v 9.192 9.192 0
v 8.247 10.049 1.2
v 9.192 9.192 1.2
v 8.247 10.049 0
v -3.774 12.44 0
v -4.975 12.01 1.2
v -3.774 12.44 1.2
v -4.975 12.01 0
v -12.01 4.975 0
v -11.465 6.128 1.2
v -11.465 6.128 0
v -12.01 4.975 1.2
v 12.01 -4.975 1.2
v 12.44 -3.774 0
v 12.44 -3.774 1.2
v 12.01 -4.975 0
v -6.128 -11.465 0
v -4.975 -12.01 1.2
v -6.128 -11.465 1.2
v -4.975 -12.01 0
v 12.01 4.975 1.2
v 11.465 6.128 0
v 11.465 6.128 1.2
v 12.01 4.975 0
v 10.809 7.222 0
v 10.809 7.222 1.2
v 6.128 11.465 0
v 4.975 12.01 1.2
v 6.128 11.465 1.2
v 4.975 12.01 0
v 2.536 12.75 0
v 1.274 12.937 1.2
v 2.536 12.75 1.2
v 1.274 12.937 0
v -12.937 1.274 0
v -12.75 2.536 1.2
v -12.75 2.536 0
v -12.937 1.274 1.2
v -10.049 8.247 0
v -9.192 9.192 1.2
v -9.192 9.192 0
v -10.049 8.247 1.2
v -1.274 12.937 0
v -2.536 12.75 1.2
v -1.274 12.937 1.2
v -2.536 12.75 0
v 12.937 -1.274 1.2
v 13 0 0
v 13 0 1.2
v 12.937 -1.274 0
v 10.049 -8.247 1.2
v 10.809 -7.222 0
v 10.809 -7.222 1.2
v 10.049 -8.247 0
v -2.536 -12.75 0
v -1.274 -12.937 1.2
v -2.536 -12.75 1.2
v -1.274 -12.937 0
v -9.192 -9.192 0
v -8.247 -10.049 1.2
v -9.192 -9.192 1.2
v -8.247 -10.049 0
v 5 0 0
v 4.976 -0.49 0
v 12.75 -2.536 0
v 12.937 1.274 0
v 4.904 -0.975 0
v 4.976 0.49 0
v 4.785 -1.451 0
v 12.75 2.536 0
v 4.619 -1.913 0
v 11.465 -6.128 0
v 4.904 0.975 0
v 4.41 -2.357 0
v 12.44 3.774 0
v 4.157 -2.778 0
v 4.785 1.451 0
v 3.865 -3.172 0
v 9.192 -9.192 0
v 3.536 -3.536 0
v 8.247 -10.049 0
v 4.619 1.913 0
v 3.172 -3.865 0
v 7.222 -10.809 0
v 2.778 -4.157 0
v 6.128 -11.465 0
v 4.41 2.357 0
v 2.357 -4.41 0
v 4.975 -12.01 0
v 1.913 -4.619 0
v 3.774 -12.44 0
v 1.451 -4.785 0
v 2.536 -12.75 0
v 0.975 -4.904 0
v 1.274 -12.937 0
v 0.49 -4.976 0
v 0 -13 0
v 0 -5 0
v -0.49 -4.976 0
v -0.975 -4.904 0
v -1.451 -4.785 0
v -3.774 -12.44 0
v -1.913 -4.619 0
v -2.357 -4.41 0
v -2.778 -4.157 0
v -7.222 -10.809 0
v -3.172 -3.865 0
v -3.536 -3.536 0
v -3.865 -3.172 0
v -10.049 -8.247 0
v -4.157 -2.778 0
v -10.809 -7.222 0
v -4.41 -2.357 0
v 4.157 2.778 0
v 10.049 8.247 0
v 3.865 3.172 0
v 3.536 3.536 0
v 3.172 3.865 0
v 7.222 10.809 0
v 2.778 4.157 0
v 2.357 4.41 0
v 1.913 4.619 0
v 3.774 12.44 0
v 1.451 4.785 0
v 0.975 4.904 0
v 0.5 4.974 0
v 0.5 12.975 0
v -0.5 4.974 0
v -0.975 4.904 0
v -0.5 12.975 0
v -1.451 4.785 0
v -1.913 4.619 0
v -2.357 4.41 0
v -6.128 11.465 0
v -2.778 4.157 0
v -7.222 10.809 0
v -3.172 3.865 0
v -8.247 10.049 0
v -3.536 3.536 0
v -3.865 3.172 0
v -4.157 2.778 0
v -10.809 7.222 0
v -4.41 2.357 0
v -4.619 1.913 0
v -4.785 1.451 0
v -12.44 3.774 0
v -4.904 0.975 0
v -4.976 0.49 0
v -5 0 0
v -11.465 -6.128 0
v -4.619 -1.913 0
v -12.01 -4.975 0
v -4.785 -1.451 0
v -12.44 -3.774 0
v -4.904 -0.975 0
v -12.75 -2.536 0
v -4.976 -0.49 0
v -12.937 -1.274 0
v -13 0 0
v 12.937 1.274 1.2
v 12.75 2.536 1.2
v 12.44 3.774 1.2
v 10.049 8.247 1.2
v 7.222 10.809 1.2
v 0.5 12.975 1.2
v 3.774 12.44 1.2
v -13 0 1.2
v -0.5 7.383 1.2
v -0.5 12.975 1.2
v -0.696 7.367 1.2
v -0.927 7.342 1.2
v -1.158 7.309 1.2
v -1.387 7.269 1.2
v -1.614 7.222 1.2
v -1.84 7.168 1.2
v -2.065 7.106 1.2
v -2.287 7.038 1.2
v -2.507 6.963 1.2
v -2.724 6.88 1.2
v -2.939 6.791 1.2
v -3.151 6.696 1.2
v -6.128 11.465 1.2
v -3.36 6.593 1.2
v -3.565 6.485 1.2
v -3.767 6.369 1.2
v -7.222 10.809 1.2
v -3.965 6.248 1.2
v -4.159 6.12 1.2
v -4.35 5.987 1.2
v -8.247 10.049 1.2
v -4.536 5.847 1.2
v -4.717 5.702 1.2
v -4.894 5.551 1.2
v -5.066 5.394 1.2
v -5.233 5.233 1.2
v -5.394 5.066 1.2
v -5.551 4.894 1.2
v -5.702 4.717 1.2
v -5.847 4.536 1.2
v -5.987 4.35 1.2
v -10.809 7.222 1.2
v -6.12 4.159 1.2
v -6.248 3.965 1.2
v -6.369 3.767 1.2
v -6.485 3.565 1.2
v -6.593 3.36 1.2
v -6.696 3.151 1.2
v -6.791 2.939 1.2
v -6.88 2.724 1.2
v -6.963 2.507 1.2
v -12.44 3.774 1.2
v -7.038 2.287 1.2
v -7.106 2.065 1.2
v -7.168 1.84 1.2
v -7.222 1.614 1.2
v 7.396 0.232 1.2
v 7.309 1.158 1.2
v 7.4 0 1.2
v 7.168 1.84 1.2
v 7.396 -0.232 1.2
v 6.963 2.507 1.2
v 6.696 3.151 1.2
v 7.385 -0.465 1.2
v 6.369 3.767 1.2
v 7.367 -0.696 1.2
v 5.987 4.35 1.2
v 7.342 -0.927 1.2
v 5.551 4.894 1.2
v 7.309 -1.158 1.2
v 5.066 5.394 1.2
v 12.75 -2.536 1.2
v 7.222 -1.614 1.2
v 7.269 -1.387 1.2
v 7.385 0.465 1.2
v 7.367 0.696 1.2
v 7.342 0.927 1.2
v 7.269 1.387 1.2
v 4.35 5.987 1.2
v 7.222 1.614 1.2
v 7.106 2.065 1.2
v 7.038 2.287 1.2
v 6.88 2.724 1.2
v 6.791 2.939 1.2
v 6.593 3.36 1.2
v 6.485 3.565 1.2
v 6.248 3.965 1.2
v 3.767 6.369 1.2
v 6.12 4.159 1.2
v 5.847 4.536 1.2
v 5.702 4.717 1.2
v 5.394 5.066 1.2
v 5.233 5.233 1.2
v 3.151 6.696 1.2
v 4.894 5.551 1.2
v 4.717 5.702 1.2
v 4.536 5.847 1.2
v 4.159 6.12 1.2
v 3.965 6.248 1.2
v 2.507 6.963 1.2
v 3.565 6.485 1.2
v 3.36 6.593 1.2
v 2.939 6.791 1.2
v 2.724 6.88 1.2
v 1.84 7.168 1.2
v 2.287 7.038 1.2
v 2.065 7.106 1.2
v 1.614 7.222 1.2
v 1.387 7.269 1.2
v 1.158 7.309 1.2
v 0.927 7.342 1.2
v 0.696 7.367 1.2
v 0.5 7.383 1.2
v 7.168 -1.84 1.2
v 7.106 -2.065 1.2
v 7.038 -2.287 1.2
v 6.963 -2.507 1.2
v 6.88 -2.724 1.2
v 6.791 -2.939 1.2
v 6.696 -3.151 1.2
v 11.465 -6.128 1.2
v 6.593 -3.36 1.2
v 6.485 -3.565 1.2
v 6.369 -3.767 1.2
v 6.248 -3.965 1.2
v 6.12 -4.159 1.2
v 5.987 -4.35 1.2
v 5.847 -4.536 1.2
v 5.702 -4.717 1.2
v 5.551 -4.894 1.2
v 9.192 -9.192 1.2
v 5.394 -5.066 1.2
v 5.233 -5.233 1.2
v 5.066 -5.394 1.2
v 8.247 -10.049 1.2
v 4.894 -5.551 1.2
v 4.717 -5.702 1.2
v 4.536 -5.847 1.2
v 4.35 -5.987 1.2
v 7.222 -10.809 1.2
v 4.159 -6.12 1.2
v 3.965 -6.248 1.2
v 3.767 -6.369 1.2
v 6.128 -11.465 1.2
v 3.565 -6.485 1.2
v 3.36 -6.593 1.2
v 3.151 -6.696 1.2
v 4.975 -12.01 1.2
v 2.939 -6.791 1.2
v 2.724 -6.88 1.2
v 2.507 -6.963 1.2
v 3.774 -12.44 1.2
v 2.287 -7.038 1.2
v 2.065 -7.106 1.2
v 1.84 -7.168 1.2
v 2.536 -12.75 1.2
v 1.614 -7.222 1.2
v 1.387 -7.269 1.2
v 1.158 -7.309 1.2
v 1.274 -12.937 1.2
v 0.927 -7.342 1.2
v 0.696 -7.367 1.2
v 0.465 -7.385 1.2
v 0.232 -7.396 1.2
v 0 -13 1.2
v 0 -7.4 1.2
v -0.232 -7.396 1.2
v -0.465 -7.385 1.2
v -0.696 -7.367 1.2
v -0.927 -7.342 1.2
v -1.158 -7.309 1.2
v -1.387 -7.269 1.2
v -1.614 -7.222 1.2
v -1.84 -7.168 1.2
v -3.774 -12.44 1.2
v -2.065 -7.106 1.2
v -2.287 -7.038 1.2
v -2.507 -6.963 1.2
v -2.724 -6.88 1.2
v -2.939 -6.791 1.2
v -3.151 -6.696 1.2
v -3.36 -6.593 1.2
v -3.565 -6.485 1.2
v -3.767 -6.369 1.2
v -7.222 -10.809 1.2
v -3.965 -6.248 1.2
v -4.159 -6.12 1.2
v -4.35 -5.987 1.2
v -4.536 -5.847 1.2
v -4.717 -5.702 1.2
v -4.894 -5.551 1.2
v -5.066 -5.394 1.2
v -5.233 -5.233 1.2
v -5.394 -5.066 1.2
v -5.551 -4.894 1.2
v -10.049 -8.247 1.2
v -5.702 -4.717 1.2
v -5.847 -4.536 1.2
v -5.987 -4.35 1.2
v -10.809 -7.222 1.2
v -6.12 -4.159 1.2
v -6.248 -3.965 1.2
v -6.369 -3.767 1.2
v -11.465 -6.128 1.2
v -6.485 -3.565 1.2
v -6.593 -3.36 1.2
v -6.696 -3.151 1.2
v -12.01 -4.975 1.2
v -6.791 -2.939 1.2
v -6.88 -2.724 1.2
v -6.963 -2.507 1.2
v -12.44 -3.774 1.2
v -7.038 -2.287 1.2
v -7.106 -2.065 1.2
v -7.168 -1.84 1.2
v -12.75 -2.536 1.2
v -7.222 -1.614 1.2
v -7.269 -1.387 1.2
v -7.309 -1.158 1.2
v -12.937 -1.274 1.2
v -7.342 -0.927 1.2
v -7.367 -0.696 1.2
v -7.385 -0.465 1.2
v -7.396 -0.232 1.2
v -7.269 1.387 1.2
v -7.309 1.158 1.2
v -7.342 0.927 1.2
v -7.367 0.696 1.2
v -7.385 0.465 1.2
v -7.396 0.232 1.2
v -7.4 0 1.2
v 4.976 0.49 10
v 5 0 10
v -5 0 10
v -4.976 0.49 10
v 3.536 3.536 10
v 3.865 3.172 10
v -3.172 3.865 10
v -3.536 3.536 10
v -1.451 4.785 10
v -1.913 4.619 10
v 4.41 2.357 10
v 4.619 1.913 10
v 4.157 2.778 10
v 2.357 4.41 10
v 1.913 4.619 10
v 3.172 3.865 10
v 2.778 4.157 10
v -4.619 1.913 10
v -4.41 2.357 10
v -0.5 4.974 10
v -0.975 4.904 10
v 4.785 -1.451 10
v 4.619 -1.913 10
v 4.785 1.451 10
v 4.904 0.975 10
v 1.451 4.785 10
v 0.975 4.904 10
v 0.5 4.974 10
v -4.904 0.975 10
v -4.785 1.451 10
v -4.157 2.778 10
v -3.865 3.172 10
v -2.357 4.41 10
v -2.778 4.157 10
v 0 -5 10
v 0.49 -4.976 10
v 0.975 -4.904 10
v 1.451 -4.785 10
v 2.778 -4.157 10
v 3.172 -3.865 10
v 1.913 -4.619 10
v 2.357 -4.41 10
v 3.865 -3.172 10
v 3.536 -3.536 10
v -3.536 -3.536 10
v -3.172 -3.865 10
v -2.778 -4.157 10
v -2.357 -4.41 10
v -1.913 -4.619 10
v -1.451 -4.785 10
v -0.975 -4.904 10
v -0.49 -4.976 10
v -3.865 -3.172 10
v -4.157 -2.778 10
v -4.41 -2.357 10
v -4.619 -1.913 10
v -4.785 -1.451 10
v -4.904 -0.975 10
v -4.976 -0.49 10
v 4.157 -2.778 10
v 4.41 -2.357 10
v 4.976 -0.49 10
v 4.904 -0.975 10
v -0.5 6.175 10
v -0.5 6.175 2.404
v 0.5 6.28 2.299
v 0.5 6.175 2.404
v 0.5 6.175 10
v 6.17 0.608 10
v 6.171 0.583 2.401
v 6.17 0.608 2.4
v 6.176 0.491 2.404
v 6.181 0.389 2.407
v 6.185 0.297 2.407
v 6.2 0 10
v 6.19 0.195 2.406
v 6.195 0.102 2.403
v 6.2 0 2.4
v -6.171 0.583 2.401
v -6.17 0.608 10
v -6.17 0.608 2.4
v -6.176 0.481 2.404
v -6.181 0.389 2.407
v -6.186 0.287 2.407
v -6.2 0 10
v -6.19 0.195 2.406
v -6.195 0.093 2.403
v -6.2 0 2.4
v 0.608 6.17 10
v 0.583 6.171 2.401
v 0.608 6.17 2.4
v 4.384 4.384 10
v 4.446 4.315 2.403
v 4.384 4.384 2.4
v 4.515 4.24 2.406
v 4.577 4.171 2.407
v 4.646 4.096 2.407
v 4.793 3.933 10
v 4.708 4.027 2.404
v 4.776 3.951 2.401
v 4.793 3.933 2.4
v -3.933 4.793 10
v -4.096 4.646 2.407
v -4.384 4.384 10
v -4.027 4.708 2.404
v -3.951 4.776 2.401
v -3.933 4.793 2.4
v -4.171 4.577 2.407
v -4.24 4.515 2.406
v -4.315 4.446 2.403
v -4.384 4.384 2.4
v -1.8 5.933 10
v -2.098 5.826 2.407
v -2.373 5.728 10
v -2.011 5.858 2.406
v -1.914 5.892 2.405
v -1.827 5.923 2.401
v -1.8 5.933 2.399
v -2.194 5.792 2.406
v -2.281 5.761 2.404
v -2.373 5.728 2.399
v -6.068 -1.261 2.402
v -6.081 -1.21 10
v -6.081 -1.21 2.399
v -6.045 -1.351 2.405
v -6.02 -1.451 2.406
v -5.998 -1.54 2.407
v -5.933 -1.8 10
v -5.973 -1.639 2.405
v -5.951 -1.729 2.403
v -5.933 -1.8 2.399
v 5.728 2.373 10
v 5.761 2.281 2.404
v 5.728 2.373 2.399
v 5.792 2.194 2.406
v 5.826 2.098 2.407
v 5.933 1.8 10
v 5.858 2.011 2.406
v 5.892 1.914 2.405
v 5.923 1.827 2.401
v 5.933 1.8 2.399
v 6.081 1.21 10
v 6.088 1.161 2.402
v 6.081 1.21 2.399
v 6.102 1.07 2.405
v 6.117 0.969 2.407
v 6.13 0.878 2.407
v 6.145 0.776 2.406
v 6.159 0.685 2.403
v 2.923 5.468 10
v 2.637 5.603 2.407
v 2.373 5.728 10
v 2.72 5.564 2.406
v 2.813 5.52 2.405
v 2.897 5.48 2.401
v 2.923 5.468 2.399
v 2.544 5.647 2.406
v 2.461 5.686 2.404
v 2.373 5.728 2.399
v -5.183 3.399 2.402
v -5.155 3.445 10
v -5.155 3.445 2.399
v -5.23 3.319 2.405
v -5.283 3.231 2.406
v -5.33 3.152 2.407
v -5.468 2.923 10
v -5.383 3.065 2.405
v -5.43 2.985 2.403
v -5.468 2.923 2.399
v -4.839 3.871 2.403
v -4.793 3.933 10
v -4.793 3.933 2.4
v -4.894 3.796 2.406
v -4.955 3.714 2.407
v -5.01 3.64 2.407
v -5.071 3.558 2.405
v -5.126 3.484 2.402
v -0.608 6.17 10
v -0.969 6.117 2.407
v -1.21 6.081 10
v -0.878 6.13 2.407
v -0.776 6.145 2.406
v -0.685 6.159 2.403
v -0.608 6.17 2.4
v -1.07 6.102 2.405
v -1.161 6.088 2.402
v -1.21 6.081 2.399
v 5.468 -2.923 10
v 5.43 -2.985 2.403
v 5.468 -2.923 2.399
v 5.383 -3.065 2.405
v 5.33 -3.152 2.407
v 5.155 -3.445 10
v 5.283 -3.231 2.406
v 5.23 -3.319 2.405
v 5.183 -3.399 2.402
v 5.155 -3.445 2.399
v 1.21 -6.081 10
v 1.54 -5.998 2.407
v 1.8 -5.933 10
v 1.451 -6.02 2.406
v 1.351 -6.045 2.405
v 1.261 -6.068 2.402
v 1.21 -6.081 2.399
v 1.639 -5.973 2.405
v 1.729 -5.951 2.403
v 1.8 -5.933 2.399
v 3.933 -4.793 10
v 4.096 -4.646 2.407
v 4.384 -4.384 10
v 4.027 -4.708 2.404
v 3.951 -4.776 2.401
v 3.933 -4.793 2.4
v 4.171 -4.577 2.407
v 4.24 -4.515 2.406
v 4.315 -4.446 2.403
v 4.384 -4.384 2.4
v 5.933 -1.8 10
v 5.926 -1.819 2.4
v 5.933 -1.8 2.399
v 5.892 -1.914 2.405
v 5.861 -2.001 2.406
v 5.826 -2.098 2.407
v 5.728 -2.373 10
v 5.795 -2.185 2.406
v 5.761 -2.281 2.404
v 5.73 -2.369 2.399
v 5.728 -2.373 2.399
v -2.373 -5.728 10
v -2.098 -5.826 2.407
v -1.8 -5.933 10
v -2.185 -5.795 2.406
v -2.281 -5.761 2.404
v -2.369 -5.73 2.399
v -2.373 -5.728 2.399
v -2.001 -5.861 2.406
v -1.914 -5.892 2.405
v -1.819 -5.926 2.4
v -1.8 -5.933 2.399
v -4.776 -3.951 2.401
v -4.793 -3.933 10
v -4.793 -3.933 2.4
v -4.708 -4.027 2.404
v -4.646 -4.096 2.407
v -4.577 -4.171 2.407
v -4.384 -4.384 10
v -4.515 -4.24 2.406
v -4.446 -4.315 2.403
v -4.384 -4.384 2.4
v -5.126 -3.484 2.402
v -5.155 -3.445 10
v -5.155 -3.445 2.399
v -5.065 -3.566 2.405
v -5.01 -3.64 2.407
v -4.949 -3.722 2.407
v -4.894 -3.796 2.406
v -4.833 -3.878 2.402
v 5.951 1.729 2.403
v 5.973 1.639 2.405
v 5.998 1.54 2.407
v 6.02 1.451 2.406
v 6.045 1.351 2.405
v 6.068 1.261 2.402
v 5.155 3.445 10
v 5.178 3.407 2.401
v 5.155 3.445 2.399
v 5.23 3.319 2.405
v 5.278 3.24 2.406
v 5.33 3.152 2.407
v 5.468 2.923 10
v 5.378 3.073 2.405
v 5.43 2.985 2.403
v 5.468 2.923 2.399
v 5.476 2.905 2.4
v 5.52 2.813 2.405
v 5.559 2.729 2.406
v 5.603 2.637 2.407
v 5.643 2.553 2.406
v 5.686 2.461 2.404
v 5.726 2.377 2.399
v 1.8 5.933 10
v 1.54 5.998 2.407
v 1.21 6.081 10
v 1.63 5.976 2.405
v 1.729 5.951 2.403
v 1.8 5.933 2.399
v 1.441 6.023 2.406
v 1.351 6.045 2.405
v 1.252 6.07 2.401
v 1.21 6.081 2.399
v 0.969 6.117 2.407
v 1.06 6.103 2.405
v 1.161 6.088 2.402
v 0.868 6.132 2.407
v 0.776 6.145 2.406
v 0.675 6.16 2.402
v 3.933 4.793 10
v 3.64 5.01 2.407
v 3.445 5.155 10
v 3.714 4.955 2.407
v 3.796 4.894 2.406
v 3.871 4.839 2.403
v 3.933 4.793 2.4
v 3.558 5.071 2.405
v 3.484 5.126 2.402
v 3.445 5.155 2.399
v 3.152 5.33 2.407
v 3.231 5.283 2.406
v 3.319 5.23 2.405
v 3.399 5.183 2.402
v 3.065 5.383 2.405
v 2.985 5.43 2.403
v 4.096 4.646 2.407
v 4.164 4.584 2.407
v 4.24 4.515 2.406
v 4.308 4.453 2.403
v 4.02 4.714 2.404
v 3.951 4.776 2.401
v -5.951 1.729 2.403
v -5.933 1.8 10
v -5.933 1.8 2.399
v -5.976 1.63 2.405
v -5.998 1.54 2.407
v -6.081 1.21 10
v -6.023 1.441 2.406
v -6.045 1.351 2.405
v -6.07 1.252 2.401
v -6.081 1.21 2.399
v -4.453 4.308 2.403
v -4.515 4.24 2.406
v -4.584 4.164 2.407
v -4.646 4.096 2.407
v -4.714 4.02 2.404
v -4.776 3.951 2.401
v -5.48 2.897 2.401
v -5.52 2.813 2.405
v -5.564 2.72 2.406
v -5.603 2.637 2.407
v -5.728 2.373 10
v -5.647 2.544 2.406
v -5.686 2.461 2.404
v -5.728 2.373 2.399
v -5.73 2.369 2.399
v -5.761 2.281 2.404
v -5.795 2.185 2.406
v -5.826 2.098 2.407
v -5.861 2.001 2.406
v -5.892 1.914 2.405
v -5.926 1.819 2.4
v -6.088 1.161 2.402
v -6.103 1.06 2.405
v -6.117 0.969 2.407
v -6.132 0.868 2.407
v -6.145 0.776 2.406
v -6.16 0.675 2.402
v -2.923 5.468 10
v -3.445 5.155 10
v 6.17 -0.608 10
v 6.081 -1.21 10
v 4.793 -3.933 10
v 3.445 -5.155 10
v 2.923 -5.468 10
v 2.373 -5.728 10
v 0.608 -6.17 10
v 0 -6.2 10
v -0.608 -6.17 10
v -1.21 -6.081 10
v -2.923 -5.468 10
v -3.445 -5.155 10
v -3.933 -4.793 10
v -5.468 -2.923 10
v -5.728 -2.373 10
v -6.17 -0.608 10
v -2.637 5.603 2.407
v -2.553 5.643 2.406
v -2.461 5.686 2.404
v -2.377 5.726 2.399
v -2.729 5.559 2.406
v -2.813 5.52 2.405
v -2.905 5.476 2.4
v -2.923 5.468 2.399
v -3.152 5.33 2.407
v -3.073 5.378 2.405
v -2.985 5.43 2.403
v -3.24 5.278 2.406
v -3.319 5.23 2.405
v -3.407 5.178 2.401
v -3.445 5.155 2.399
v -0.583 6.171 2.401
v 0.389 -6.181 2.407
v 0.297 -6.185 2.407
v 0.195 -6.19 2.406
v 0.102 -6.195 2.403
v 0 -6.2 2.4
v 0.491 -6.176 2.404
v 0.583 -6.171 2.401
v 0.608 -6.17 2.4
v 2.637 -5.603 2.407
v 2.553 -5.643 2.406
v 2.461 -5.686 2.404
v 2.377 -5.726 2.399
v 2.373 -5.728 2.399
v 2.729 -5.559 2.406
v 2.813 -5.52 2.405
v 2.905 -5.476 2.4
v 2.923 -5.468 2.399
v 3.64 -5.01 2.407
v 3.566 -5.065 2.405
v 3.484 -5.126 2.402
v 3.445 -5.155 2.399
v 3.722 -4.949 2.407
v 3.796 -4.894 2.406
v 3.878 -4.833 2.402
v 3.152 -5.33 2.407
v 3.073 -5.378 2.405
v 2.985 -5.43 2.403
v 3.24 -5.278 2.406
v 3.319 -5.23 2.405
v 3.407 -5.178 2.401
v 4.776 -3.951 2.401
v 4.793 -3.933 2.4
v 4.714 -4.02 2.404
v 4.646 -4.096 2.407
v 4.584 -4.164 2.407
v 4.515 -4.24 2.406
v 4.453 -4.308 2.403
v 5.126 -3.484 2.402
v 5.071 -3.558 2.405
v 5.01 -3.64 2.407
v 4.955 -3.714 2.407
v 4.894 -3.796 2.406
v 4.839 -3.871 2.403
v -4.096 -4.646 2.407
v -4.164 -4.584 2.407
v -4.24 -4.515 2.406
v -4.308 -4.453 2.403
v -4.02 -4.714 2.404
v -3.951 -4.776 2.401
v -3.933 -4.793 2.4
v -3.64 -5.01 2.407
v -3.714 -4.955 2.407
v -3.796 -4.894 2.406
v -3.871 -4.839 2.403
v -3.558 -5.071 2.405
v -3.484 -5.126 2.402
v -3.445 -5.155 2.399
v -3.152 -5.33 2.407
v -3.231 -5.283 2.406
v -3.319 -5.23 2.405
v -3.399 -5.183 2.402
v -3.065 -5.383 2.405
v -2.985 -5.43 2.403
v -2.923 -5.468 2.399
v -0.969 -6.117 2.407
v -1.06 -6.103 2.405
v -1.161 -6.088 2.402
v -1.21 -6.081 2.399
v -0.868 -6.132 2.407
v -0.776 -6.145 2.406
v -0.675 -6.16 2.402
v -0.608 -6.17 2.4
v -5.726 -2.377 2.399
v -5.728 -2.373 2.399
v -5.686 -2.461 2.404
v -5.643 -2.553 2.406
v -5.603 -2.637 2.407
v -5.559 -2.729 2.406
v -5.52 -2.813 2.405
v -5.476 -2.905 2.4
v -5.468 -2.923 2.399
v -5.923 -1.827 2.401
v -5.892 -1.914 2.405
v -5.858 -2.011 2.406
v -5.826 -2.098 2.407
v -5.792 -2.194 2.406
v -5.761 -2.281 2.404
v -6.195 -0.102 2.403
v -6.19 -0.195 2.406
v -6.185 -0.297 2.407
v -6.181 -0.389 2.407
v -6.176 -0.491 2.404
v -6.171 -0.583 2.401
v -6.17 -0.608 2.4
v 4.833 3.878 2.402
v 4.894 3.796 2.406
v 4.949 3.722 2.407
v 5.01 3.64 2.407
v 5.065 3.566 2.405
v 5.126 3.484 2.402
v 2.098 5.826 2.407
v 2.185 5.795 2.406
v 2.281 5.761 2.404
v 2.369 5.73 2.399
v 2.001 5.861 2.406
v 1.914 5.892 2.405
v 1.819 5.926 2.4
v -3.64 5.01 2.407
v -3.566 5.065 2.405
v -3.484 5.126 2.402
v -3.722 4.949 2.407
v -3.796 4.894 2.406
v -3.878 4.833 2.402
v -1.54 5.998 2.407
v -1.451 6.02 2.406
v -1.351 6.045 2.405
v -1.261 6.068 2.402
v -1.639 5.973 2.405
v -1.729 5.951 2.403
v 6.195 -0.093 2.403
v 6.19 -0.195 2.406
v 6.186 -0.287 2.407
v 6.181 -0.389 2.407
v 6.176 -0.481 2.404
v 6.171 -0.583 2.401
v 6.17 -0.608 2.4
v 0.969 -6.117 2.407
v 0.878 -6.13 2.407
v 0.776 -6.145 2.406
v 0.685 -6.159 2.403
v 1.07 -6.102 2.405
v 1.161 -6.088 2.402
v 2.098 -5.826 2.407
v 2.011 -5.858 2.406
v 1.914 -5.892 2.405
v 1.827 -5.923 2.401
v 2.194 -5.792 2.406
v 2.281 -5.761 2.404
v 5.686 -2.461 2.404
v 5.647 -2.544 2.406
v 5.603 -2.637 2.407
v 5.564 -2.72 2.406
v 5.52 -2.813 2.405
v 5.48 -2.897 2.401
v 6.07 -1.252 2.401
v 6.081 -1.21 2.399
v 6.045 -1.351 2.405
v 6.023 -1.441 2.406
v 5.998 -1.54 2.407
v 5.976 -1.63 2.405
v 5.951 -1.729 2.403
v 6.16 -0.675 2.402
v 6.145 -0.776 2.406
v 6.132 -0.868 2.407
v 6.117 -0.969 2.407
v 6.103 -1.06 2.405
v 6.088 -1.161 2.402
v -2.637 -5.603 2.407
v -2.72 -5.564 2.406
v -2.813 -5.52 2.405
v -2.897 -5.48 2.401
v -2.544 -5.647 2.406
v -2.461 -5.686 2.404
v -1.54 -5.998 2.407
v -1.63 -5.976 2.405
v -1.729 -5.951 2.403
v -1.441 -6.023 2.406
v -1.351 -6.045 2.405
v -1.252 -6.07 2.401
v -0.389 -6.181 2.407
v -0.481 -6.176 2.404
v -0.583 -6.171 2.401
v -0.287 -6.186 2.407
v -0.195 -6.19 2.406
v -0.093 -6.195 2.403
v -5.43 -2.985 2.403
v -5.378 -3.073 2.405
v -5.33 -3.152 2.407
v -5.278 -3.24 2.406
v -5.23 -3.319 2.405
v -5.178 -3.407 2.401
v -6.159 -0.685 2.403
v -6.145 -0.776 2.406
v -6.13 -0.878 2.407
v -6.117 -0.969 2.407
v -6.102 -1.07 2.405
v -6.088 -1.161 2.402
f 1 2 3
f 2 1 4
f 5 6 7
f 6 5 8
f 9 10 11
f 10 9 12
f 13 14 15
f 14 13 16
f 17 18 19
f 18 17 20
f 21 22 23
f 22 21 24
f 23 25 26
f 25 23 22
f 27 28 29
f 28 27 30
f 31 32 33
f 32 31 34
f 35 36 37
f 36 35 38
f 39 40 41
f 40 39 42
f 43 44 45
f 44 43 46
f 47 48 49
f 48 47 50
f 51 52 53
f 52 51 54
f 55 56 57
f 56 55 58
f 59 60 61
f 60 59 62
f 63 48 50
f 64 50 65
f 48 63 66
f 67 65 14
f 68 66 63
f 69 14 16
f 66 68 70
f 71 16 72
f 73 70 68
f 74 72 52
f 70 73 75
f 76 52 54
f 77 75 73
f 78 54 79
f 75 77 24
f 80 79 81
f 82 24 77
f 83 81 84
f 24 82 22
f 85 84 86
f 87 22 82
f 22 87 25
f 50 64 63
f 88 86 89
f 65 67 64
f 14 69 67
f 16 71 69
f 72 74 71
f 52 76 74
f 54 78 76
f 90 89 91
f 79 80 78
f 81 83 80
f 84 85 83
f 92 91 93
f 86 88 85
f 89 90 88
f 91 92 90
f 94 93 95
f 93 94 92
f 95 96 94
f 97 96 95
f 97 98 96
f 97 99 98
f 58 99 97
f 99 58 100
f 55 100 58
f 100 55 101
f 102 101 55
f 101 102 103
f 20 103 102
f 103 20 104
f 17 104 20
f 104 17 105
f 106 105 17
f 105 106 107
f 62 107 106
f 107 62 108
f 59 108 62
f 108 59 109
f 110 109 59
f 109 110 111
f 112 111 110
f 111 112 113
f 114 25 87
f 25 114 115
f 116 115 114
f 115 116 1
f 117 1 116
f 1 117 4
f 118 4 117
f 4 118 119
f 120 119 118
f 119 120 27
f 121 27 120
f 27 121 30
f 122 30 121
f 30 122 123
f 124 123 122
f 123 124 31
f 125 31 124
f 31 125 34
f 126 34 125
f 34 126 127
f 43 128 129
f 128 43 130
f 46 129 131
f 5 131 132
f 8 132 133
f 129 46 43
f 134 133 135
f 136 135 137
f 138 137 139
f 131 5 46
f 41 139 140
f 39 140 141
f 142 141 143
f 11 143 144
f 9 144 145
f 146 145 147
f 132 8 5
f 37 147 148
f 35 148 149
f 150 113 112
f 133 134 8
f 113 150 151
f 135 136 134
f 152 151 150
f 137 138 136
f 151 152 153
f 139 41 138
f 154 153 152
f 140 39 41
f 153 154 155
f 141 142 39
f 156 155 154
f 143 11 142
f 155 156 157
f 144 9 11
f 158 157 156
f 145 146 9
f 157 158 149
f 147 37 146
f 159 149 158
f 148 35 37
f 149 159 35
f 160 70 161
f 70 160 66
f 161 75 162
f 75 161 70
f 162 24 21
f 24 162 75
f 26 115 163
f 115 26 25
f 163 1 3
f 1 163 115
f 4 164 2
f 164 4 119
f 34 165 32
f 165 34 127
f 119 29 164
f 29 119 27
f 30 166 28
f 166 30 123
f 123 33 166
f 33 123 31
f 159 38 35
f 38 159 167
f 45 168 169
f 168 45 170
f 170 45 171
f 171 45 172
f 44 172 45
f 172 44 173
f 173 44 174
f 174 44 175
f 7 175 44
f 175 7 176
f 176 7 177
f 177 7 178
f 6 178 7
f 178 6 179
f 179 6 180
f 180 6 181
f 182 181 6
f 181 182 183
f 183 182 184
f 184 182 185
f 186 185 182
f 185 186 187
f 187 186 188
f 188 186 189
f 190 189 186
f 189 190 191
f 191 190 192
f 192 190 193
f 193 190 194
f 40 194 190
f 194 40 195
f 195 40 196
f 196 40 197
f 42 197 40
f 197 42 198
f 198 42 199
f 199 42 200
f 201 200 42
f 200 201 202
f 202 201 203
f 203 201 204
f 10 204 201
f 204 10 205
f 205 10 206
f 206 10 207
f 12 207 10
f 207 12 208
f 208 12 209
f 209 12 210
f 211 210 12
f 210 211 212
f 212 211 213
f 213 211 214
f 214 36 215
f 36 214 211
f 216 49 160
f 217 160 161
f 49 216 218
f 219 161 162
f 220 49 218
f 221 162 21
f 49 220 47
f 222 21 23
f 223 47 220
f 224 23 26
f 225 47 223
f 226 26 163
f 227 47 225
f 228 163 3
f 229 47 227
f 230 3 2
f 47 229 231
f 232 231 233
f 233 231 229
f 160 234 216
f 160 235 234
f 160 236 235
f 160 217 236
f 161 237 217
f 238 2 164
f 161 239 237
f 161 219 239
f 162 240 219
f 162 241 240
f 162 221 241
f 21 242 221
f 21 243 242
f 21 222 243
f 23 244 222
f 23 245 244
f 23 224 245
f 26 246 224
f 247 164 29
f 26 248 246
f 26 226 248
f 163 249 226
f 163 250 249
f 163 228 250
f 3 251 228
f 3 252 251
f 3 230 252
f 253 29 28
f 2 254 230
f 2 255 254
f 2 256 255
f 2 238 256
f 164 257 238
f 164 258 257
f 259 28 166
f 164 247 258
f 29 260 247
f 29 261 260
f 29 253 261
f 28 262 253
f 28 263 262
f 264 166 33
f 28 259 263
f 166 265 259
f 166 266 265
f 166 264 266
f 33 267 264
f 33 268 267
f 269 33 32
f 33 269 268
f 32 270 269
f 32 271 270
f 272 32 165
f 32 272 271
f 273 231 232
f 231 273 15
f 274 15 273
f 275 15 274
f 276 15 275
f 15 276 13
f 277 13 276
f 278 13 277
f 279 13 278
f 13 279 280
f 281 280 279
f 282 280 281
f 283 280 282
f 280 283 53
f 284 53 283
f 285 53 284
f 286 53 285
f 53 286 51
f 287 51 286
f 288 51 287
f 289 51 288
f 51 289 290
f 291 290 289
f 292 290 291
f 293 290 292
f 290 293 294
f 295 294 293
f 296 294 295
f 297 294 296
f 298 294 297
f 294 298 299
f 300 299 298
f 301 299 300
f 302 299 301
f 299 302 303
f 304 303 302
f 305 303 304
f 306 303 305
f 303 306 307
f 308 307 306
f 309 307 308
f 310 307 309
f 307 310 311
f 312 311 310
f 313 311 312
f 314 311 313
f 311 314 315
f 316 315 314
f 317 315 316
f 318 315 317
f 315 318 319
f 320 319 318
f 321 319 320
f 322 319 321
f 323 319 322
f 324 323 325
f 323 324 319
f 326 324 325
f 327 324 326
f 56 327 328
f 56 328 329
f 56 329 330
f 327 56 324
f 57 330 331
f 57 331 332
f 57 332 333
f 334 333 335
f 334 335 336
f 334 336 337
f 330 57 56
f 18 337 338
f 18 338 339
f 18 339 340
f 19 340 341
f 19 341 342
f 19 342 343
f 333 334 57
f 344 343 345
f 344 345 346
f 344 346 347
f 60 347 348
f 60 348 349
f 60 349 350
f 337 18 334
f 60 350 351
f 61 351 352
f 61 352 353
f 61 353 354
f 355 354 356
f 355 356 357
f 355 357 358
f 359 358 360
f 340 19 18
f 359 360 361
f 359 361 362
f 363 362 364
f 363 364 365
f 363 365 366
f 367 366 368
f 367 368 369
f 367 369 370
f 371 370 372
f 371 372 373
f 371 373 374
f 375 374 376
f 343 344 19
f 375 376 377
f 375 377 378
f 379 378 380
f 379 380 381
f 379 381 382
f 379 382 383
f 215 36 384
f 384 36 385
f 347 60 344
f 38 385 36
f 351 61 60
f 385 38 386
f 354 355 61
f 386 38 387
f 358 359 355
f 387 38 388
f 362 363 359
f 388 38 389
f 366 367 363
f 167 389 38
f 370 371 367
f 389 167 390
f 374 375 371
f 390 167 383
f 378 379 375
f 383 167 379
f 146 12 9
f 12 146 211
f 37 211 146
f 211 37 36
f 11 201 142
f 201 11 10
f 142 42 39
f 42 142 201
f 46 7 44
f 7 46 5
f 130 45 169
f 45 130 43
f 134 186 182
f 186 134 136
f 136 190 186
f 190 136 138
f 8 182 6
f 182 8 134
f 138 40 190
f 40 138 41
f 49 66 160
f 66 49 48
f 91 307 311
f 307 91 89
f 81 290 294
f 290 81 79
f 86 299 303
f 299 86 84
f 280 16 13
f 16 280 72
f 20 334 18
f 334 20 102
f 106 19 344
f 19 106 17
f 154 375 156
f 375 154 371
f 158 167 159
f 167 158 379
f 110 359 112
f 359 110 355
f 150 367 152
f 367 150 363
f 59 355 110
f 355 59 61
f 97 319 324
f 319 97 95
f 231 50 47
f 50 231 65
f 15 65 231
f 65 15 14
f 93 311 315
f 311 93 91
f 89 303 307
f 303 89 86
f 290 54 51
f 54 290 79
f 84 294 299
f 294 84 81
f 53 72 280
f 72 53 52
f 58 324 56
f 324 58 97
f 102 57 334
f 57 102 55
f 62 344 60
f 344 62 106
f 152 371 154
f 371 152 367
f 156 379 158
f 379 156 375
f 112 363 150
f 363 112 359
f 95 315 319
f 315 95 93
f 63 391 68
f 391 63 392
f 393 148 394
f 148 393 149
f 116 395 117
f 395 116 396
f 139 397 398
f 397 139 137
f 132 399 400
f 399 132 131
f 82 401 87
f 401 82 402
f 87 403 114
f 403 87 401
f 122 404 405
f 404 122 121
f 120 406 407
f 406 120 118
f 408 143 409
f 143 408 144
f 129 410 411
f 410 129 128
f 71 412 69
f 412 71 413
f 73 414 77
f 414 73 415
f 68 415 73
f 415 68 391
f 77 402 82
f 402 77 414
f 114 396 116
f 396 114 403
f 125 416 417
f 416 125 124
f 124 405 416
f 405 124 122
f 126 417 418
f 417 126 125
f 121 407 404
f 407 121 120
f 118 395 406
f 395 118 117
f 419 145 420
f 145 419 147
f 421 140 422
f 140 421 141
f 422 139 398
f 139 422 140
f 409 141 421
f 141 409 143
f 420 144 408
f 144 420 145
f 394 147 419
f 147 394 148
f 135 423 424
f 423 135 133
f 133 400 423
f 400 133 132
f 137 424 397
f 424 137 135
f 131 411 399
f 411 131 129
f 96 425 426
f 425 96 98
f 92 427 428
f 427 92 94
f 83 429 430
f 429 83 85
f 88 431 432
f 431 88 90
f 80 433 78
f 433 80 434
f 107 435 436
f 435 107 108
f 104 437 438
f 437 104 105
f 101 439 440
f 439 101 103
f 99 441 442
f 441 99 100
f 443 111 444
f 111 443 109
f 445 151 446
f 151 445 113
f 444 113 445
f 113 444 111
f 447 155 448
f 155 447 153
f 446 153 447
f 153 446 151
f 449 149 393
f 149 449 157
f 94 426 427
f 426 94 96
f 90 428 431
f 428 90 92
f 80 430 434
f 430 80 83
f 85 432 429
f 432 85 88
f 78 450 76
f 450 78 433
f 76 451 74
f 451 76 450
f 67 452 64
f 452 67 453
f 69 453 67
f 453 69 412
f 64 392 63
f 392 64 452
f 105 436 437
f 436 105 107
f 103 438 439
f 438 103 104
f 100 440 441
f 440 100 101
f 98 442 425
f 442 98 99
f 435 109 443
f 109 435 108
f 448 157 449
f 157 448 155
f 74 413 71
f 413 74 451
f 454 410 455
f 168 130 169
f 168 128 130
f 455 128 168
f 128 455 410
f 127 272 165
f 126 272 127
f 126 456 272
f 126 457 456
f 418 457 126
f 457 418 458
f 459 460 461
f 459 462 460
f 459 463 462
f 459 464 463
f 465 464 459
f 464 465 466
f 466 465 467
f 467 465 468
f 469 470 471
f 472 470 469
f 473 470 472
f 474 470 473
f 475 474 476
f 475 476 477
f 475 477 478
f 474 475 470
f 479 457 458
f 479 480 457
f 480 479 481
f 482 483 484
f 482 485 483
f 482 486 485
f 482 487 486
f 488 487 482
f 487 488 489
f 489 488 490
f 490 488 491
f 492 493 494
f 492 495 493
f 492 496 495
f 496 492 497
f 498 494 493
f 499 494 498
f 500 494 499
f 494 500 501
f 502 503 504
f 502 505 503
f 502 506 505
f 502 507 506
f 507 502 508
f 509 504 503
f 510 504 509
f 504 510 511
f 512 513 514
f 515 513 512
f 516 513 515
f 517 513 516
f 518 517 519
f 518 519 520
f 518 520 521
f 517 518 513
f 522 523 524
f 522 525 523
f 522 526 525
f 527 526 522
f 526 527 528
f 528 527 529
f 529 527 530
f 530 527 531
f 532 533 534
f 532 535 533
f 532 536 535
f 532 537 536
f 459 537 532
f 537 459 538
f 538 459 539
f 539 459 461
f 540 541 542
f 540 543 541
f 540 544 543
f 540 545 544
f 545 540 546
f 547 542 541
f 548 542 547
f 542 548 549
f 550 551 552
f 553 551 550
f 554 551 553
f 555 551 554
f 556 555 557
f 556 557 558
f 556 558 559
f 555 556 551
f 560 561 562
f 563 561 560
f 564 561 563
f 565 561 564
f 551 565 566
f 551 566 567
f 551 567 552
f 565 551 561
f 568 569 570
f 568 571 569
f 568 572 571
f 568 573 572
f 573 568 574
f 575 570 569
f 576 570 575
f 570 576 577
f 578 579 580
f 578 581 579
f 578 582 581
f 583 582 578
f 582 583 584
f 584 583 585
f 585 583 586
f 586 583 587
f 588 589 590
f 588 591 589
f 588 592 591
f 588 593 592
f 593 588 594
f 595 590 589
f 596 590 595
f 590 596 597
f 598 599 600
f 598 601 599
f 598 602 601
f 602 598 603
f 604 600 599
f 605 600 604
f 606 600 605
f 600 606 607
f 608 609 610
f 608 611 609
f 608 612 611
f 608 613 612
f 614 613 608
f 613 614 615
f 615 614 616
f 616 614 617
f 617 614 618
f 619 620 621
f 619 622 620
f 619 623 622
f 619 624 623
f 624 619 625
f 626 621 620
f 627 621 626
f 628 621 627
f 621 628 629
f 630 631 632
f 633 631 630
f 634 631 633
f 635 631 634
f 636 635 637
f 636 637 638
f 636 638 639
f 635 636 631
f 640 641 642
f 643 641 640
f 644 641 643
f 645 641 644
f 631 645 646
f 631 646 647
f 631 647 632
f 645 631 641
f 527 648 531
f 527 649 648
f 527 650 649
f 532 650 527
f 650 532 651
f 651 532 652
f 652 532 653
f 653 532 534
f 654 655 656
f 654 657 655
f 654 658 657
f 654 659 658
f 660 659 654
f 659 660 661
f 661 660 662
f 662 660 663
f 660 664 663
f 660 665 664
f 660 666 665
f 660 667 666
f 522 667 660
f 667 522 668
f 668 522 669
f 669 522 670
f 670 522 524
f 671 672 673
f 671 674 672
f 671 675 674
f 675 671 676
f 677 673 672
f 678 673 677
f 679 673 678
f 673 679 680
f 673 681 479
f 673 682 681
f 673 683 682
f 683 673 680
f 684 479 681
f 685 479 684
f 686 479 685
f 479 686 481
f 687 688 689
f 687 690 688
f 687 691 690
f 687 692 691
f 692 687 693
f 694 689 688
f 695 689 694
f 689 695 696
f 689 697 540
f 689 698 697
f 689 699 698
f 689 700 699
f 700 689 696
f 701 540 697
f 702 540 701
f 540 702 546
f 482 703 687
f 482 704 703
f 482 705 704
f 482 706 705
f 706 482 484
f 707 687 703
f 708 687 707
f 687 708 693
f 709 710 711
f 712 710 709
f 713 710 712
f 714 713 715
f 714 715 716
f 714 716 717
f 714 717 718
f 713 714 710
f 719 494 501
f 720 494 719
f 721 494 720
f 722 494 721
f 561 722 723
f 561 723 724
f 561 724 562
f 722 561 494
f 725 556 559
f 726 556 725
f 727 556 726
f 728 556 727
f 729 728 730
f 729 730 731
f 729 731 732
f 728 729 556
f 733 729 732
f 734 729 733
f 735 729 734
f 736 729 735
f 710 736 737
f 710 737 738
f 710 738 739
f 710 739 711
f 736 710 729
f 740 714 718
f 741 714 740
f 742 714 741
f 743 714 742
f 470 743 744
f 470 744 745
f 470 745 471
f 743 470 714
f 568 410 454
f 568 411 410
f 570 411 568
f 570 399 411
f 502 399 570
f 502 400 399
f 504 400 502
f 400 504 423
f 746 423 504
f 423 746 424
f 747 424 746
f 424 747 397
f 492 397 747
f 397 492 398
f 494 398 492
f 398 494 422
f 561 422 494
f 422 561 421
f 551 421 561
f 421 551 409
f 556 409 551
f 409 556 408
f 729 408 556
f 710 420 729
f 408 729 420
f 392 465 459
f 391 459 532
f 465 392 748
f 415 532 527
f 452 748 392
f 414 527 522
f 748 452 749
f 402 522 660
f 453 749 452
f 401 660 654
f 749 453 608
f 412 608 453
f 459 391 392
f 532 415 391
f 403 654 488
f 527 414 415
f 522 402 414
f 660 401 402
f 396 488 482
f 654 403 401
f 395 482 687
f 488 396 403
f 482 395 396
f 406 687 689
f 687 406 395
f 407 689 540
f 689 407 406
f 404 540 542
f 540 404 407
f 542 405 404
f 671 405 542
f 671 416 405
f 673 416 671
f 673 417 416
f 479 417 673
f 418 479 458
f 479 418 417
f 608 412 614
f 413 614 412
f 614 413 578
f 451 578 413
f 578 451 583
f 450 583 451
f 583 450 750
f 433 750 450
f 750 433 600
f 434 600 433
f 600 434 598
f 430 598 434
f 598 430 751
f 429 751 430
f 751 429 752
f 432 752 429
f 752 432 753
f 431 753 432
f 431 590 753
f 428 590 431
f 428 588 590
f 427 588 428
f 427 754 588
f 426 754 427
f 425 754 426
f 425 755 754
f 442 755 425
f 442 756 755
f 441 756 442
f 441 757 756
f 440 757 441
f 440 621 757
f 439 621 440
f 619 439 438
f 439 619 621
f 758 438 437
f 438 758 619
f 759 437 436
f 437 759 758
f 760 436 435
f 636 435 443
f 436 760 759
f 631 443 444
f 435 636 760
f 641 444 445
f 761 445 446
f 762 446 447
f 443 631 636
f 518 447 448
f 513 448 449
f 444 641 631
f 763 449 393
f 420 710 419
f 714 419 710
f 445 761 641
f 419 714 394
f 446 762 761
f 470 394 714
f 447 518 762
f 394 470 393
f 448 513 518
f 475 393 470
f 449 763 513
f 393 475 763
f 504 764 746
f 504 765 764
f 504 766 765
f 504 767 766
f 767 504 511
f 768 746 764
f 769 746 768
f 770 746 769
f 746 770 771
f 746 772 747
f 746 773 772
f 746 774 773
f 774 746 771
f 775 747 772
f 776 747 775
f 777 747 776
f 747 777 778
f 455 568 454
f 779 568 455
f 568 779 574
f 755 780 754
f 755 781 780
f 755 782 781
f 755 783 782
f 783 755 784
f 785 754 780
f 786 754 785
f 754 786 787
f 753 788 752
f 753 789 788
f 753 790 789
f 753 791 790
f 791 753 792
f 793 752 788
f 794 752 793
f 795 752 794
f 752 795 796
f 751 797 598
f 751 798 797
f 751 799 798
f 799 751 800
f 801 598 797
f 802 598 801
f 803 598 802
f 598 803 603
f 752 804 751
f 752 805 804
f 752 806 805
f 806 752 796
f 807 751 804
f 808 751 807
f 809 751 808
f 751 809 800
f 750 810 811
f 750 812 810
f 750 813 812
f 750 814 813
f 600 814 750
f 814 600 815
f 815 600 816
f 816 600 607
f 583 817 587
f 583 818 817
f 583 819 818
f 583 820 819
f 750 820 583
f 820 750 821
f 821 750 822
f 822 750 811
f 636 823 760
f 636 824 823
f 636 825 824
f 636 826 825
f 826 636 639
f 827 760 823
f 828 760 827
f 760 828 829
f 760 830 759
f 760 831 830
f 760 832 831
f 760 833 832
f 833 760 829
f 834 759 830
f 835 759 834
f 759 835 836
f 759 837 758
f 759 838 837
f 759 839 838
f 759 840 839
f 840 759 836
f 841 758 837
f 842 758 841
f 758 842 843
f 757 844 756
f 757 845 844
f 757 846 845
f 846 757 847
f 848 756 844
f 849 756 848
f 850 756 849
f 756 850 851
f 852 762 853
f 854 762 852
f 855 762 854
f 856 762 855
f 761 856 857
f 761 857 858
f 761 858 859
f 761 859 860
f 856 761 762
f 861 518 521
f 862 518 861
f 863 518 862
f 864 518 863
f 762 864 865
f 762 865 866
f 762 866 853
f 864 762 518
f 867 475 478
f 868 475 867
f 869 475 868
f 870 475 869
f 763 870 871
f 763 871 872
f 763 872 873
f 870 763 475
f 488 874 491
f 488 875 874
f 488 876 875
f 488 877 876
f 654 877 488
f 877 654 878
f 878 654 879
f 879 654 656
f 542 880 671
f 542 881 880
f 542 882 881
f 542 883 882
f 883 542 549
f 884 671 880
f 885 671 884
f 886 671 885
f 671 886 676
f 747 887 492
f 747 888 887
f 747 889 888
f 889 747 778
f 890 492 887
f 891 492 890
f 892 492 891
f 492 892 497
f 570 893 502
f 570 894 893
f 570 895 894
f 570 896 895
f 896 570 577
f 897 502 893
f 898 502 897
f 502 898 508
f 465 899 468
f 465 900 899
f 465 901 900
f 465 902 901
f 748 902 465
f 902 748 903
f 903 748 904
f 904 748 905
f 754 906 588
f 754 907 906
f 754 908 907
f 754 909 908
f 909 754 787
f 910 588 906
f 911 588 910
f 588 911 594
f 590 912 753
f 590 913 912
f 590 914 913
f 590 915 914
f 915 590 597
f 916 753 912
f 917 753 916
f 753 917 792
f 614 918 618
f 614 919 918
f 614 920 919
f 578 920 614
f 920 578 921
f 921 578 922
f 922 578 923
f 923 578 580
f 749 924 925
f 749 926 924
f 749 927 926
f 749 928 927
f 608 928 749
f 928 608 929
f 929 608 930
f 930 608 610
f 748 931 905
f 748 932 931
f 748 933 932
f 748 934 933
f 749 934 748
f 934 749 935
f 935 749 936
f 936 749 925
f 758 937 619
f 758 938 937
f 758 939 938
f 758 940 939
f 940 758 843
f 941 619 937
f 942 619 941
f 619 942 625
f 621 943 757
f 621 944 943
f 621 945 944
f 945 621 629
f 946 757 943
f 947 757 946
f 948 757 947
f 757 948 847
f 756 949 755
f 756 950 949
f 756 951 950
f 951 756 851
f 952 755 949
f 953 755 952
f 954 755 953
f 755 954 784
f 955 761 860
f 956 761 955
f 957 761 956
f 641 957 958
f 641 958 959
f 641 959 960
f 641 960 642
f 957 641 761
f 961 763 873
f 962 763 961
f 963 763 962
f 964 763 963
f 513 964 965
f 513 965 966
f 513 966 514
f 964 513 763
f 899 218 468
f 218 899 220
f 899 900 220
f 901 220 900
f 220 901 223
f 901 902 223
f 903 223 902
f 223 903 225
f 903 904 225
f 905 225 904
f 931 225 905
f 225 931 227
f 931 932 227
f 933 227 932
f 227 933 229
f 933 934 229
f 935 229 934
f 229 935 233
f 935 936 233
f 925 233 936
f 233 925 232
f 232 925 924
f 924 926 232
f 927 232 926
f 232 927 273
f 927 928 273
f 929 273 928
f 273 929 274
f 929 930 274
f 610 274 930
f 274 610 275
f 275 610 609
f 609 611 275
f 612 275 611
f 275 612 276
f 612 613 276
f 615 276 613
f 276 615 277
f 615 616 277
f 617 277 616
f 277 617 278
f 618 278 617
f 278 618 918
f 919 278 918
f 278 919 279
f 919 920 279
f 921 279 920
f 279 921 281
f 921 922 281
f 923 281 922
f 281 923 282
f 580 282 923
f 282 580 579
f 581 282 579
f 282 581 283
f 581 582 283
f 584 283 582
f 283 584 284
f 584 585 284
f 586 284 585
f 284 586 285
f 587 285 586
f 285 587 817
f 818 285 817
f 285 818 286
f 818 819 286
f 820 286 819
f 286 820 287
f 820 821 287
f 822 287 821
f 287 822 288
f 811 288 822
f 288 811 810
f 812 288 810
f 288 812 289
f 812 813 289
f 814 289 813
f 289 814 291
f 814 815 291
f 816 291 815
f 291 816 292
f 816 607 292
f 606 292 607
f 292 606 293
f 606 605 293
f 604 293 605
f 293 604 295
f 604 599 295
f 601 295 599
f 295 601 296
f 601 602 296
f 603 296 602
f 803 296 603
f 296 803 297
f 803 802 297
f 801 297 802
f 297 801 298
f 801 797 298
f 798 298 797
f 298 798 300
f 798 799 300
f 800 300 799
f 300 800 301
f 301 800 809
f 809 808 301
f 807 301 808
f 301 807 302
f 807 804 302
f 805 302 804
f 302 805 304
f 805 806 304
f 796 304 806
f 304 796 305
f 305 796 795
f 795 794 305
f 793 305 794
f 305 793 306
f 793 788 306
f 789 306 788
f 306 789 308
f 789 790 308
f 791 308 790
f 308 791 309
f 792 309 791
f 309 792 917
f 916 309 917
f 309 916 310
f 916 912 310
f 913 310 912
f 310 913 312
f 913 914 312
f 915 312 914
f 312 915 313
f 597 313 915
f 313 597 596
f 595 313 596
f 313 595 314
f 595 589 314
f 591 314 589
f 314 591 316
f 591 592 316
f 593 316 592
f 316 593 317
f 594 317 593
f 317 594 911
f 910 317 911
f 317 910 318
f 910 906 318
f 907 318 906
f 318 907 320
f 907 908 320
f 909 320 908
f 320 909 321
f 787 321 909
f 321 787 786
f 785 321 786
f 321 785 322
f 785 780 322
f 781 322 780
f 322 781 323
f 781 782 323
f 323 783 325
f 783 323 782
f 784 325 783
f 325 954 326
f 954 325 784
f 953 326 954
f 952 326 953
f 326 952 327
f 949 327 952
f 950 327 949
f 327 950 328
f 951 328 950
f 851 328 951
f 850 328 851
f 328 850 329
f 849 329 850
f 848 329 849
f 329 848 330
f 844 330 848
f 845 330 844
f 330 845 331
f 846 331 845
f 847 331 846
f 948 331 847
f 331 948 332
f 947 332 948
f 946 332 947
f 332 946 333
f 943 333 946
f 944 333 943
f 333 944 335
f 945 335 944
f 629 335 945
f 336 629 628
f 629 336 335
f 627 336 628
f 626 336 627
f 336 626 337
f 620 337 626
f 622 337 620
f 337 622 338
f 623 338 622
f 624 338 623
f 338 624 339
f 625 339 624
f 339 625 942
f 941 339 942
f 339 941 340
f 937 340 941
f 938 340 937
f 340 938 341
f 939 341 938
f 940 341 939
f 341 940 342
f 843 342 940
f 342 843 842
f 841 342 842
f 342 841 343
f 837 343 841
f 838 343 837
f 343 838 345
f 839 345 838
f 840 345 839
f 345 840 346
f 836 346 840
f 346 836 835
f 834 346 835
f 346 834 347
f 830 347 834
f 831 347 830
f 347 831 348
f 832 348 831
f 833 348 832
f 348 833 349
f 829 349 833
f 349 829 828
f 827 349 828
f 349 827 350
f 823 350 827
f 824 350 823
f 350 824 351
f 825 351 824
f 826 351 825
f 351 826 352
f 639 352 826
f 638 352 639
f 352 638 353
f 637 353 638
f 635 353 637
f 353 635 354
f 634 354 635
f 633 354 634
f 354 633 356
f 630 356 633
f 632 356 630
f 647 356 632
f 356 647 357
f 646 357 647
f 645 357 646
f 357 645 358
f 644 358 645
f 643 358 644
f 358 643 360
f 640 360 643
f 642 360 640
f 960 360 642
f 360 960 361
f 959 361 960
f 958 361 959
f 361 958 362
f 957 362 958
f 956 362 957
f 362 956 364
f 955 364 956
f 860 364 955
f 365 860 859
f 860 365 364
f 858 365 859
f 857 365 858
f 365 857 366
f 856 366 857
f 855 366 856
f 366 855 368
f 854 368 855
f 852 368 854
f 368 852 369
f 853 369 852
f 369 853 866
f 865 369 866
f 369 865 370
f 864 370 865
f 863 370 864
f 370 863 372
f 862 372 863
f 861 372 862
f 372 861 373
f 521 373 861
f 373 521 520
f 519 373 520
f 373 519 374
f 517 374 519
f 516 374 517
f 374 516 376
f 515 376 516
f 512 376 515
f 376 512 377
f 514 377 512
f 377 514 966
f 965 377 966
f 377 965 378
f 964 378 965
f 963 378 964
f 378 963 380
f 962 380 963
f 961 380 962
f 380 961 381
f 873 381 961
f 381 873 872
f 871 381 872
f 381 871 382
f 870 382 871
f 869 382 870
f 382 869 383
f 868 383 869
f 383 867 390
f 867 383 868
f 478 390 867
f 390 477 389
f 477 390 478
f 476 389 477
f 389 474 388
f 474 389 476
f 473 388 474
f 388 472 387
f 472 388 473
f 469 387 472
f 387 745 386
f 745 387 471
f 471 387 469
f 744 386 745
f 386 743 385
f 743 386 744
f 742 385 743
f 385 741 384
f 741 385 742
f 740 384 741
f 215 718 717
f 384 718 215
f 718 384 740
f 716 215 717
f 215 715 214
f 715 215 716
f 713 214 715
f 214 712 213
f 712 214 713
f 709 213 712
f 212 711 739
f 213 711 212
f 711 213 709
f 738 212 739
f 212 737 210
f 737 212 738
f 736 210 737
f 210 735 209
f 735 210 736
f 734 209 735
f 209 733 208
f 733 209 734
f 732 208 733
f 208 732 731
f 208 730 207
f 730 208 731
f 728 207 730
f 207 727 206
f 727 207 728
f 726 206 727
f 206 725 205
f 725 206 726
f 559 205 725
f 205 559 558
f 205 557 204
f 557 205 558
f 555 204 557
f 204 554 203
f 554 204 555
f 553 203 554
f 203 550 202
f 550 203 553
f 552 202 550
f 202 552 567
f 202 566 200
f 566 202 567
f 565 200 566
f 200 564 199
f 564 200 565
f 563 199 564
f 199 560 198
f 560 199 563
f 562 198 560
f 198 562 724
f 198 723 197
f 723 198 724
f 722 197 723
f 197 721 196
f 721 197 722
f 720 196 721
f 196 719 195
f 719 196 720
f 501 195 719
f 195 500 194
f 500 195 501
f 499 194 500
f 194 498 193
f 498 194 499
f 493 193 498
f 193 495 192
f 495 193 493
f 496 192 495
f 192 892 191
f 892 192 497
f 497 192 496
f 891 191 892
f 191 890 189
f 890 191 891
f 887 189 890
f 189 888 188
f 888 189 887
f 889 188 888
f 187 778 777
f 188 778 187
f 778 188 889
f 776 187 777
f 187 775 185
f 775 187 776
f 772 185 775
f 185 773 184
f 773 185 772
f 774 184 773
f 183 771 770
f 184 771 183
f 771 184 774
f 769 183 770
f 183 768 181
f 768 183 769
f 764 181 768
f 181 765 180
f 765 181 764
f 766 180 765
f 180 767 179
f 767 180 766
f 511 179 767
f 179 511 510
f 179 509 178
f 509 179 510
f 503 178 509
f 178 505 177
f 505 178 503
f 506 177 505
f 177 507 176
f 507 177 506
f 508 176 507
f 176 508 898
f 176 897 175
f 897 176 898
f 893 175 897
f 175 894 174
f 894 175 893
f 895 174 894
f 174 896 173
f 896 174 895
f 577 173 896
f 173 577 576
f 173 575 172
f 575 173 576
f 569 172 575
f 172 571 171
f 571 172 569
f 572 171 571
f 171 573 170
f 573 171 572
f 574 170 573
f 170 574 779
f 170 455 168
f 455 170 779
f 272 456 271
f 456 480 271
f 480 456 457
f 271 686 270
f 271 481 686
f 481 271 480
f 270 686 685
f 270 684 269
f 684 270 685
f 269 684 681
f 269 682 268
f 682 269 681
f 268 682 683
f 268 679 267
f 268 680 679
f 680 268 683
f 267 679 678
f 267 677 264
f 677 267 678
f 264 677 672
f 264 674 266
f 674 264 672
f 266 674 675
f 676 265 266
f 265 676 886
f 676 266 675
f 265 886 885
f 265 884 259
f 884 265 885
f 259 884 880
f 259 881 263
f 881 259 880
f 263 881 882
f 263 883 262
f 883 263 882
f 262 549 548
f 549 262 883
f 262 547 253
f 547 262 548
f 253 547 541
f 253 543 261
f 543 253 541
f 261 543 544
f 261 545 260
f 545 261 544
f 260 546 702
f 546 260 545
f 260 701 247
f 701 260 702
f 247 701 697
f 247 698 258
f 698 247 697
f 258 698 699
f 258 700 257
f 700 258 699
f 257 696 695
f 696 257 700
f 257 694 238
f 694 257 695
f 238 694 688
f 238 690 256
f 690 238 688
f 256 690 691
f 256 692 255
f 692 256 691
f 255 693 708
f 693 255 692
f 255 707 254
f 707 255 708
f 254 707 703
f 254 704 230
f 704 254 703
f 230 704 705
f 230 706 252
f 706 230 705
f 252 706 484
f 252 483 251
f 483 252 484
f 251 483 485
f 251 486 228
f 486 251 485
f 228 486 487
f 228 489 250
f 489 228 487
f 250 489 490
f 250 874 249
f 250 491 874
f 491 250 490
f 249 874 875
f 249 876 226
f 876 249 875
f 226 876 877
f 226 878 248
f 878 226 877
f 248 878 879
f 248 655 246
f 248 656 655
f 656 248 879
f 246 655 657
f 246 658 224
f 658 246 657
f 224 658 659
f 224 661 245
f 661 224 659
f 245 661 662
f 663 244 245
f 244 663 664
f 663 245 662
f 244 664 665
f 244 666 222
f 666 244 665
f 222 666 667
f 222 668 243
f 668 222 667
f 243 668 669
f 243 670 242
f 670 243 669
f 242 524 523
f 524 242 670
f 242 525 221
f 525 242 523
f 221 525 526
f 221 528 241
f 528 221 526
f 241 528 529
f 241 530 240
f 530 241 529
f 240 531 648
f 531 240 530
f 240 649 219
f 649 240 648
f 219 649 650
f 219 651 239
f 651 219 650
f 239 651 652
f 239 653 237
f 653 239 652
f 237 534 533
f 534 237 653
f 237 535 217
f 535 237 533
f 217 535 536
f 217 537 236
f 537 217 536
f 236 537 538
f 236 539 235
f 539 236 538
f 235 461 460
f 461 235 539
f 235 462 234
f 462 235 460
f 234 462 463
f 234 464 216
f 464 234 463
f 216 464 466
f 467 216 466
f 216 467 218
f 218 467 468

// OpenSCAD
// pen holder for plotting robot

$fn = 64;

// holder variables
penDiameter = 10; // 12.5mm works with Sharpie Fine
                  // 11.75 for Visa-vis
                  // 10 mm for Crayola Washables
penRadius = penDiameter / 2;
barrelHieght = 10;
barrelWallThickness = 3;
baseThickness = 3;
cornerRounding = 2;

hat_thickness = 1.2;

hatDiameter = 26;
slice = 1;


module penHolder(){

	difference(){
		//// lip
        cylinder(hat_thickness, hatDiameter / 2, hatDiameter / 2);
        
        // pen hole
        cylinder(baseThickness, penRadius, penRadius);
        

        // expansion slice
        translate([ -slice / 2, 0, 0])
        cube([  slice, hatDiameter, barrelHieght]); 
	}

	// pen barrel
	difference(){
        // barrel

        barrel();

		// bore
		cylinder(   barrelHieght * 2, penRadius, penRadius);

        
        // expansion slice
        translate([ -slice / 2, 0, 0])
        cube([  slice, hatDiameter * 2, hatDiameter * 2]);   
	};  
}

module barrel()
        union(){{
		cylinder(	barrelHieght, 
					penRadius + hat_thickness, 
					penRadius + hat_thickness);


        rotate_extrude($fn=200)
        //rotate([90, 0, 0])
        translate([-penRadius - 2 * hat_thickness, hat_thickness, 0])
        polygon(points=[[2,2], [2,0], [0,0]]);
        }
    }
//barrel();
penHolder();
